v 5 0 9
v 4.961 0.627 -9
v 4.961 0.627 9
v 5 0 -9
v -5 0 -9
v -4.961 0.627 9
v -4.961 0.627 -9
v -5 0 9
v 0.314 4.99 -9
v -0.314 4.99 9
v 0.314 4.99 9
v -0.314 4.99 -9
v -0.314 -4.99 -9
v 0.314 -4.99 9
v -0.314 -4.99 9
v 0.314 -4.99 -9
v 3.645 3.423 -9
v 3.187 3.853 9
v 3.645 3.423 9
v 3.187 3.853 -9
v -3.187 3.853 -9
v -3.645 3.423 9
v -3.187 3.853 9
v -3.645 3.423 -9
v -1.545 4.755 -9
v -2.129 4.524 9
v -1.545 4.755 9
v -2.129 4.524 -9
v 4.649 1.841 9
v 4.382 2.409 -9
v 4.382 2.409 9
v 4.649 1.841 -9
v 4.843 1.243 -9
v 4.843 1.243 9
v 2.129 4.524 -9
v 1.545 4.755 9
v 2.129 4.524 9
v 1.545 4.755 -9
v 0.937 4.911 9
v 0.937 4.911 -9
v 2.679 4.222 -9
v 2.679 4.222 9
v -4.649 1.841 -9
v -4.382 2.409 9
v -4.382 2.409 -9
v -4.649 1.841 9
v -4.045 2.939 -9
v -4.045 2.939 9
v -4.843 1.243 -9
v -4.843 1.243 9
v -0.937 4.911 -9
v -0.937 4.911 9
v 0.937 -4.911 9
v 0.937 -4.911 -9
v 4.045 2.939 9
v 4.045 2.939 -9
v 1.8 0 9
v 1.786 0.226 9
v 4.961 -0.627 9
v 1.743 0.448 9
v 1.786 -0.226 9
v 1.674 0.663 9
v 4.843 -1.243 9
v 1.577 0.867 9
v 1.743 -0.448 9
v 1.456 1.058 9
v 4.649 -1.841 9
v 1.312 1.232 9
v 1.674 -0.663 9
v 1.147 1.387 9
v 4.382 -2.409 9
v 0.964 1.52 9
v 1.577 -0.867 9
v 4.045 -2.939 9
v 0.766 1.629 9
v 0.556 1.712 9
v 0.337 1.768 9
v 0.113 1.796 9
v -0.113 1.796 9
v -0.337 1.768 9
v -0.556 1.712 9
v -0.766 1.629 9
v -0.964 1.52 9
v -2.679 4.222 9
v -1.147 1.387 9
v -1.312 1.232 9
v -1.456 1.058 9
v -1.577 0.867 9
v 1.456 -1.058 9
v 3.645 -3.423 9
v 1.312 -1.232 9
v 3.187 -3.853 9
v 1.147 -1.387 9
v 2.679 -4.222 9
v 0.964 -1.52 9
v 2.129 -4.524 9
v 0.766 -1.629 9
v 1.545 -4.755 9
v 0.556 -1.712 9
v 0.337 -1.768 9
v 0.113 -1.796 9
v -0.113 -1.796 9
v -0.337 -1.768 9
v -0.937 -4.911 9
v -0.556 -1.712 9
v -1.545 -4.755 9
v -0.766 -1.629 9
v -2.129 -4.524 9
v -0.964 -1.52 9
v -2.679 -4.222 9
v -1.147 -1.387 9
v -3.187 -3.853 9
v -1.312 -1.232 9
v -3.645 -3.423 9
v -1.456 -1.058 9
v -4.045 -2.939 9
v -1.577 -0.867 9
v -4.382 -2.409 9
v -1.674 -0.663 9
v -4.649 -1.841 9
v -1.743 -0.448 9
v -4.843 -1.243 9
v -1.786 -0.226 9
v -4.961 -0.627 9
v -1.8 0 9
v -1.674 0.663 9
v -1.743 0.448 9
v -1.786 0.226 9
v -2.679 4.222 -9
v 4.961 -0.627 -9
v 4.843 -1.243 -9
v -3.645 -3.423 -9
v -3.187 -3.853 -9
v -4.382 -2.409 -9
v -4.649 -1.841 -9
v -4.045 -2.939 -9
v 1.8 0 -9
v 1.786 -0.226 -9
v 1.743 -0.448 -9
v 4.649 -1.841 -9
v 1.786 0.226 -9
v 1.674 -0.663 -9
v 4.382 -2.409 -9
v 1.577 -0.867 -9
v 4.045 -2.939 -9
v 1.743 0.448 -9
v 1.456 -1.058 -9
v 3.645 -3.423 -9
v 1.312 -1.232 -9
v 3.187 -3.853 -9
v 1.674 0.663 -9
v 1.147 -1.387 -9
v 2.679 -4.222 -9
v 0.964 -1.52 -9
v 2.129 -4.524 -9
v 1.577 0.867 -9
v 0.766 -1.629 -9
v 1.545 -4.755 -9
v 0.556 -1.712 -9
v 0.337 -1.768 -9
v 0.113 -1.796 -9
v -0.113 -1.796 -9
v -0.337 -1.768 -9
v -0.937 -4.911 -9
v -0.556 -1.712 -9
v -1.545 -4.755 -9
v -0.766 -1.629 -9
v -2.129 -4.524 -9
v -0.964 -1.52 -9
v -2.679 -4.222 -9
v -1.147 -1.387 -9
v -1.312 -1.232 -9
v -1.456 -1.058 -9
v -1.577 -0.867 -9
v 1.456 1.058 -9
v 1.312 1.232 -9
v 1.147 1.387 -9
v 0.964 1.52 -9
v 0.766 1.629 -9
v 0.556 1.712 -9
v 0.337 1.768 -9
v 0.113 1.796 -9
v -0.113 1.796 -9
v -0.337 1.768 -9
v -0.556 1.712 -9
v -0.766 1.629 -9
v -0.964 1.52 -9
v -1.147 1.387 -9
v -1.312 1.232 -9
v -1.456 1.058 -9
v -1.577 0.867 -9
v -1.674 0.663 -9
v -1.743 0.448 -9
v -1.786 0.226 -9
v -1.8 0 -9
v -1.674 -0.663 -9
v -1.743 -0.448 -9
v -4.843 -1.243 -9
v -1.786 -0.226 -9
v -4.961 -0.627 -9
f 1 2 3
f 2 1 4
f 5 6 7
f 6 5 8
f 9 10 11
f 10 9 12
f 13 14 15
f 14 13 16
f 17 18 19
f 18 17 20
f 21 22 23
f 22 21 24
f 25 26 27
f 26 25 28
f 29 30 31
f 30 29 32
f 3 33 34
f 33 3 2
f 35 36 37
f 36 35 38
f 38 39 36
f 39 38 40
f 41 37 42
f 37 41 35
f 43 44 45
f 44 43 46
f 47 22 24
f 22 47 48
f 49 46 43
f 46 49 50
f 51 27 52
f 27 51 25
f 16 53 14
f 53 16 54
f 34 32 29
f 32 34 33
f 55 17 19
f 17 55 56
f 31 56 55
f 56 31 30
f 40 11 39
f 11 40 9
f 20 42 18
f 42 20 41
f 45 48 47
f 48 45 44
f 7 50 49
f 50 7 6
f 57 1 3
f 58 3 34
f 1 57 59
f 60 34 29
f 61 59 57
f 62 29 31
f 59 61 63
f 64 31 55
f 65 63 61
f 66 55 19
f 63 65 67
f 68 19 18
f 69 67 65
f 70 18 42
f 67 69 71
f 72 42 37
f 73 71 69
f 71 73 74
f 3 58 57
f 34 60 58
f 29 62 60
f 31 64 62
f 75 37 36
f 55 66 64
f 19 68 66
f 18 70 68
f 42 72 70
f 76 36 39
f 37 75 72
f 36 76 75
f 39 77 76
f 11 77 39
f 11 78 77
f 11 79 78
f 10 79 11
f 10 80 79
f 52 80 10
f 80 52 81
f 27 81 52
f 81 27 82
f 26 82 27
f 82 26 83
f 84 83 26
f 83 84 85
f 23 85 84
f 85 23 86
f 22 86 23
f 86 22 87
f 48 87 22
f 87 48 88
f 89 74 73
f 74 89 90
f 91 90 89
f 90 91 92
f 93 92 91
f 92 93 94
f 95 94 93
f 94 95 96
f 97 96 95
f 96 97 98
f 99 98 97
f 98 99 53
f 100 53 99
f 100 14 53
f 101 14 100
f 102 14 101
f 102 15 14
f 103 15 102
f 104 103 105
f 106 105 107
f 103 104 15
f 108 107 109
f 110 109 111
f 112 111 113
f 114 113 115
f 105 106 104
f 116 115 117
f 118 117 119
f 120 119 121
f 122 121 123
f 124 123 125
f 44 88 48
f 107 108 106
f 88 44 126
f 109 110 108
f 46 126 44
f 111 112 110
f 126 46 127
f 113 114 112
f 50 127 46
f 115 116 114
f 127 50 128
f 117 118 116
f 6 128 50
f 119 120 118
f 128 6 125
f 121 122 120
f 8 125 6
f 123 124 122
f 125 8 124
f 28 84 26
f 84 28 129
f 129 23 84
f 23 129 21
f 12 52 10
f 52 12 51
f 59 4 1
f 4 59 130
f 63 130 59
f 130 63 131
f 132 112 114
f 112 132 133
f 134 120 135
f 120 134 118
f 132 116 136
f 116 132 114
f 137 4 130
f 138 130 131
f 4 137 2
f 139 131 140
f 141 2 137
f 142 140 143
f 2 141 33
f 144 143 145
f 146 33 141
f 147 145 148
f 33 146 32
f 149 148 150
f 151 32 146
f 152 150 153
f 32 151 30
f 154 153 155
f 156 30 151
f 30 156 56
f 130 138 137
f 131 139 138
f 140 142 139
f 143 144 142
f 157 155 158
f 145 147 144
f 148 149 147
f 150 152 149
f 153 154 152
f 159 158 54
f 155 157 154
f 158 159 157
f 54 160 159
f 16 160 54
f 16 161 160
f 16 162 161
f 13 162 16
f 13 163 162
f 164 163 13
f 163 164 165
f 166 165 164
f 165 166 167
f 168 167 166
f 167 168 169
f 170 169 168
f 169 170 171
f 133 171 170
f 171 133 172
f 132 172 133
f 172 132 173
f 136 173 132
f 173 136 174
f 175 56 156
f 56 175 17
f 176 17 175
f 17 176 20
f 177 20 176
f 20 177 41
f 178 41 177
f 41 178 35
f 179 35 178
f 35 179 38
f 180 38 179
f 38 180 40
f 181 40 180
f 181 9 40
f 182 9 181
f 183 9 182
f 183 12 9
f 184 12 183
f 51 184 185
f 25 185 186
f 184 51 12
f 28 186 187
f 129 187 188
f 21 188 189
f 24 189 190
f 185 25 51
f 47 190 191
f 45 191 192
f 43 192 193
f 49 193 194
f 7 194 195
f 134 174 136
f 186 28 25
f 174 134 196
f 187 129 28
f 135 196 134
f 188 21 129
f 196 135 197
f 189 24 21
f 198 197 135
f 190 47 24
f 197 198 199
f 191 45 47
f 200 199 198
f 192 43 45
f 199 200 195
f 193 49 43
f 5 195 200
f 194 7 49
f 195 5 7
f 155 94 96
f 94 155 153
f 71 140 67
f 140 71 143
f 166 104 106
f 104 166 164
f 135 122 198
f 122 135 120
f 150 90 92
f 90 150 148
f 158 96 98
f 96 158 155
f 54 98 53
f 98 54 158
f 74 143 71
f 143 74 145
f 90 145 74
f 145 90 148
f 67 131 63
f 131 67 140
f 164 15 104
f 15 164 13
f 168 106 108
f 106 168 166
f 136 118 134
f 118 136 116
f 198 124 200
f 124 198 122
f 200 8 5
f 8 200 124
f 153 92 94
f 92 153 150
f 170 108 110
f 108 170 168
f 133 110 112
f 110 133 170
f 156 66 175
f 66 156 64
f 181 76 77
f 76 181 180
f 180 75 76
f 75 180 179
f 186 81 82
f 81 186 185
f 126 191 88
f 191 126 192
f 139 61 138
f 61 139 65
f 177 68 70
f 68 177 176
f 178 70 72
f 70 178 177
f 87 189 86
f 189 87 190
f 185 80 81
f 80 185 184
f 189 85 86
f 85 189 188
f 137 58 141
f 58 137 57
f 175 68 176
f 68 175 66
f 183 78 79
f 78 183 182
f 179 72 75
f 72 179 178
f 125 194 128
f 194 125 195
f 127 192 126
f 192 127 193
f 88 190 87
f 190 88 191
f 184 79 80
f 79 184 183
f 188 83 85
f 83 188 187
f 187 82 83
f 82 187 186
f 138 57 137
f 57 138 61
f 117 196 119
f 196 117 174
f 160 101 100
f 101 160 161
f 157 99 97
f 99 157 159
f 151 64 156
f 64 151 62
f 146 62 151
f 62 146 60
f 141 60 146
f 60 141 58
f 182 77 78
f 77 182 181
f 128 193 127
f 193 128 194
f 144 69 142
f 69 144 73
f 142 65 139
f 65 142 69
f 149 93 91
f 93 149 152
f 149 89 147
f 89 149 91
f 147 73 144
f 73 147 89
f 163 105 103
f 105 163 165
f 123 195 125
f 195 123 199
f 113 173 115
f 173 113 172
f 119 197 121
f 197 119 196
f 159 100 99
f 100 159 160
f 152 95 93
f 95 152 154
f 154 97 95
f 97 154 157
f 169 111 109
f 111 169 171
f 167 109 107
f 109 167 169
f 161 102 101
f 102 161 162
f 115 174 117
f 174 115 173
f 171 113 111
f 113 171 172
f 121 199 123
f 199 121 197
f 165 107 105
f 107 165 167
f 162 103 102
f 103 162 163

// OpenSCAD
$fn = 50;


difference() {
	union() {
		translate(v = [0, 0, -9.0000000000]) {
			cylinder(h = 18, r = 5.0000000000);
		}
	}
	union() {
		translate(v = [0, 0, -100.0000000000]) {
			cylinder(h = 200, r = 1.8000000000);
		}
	}
}
